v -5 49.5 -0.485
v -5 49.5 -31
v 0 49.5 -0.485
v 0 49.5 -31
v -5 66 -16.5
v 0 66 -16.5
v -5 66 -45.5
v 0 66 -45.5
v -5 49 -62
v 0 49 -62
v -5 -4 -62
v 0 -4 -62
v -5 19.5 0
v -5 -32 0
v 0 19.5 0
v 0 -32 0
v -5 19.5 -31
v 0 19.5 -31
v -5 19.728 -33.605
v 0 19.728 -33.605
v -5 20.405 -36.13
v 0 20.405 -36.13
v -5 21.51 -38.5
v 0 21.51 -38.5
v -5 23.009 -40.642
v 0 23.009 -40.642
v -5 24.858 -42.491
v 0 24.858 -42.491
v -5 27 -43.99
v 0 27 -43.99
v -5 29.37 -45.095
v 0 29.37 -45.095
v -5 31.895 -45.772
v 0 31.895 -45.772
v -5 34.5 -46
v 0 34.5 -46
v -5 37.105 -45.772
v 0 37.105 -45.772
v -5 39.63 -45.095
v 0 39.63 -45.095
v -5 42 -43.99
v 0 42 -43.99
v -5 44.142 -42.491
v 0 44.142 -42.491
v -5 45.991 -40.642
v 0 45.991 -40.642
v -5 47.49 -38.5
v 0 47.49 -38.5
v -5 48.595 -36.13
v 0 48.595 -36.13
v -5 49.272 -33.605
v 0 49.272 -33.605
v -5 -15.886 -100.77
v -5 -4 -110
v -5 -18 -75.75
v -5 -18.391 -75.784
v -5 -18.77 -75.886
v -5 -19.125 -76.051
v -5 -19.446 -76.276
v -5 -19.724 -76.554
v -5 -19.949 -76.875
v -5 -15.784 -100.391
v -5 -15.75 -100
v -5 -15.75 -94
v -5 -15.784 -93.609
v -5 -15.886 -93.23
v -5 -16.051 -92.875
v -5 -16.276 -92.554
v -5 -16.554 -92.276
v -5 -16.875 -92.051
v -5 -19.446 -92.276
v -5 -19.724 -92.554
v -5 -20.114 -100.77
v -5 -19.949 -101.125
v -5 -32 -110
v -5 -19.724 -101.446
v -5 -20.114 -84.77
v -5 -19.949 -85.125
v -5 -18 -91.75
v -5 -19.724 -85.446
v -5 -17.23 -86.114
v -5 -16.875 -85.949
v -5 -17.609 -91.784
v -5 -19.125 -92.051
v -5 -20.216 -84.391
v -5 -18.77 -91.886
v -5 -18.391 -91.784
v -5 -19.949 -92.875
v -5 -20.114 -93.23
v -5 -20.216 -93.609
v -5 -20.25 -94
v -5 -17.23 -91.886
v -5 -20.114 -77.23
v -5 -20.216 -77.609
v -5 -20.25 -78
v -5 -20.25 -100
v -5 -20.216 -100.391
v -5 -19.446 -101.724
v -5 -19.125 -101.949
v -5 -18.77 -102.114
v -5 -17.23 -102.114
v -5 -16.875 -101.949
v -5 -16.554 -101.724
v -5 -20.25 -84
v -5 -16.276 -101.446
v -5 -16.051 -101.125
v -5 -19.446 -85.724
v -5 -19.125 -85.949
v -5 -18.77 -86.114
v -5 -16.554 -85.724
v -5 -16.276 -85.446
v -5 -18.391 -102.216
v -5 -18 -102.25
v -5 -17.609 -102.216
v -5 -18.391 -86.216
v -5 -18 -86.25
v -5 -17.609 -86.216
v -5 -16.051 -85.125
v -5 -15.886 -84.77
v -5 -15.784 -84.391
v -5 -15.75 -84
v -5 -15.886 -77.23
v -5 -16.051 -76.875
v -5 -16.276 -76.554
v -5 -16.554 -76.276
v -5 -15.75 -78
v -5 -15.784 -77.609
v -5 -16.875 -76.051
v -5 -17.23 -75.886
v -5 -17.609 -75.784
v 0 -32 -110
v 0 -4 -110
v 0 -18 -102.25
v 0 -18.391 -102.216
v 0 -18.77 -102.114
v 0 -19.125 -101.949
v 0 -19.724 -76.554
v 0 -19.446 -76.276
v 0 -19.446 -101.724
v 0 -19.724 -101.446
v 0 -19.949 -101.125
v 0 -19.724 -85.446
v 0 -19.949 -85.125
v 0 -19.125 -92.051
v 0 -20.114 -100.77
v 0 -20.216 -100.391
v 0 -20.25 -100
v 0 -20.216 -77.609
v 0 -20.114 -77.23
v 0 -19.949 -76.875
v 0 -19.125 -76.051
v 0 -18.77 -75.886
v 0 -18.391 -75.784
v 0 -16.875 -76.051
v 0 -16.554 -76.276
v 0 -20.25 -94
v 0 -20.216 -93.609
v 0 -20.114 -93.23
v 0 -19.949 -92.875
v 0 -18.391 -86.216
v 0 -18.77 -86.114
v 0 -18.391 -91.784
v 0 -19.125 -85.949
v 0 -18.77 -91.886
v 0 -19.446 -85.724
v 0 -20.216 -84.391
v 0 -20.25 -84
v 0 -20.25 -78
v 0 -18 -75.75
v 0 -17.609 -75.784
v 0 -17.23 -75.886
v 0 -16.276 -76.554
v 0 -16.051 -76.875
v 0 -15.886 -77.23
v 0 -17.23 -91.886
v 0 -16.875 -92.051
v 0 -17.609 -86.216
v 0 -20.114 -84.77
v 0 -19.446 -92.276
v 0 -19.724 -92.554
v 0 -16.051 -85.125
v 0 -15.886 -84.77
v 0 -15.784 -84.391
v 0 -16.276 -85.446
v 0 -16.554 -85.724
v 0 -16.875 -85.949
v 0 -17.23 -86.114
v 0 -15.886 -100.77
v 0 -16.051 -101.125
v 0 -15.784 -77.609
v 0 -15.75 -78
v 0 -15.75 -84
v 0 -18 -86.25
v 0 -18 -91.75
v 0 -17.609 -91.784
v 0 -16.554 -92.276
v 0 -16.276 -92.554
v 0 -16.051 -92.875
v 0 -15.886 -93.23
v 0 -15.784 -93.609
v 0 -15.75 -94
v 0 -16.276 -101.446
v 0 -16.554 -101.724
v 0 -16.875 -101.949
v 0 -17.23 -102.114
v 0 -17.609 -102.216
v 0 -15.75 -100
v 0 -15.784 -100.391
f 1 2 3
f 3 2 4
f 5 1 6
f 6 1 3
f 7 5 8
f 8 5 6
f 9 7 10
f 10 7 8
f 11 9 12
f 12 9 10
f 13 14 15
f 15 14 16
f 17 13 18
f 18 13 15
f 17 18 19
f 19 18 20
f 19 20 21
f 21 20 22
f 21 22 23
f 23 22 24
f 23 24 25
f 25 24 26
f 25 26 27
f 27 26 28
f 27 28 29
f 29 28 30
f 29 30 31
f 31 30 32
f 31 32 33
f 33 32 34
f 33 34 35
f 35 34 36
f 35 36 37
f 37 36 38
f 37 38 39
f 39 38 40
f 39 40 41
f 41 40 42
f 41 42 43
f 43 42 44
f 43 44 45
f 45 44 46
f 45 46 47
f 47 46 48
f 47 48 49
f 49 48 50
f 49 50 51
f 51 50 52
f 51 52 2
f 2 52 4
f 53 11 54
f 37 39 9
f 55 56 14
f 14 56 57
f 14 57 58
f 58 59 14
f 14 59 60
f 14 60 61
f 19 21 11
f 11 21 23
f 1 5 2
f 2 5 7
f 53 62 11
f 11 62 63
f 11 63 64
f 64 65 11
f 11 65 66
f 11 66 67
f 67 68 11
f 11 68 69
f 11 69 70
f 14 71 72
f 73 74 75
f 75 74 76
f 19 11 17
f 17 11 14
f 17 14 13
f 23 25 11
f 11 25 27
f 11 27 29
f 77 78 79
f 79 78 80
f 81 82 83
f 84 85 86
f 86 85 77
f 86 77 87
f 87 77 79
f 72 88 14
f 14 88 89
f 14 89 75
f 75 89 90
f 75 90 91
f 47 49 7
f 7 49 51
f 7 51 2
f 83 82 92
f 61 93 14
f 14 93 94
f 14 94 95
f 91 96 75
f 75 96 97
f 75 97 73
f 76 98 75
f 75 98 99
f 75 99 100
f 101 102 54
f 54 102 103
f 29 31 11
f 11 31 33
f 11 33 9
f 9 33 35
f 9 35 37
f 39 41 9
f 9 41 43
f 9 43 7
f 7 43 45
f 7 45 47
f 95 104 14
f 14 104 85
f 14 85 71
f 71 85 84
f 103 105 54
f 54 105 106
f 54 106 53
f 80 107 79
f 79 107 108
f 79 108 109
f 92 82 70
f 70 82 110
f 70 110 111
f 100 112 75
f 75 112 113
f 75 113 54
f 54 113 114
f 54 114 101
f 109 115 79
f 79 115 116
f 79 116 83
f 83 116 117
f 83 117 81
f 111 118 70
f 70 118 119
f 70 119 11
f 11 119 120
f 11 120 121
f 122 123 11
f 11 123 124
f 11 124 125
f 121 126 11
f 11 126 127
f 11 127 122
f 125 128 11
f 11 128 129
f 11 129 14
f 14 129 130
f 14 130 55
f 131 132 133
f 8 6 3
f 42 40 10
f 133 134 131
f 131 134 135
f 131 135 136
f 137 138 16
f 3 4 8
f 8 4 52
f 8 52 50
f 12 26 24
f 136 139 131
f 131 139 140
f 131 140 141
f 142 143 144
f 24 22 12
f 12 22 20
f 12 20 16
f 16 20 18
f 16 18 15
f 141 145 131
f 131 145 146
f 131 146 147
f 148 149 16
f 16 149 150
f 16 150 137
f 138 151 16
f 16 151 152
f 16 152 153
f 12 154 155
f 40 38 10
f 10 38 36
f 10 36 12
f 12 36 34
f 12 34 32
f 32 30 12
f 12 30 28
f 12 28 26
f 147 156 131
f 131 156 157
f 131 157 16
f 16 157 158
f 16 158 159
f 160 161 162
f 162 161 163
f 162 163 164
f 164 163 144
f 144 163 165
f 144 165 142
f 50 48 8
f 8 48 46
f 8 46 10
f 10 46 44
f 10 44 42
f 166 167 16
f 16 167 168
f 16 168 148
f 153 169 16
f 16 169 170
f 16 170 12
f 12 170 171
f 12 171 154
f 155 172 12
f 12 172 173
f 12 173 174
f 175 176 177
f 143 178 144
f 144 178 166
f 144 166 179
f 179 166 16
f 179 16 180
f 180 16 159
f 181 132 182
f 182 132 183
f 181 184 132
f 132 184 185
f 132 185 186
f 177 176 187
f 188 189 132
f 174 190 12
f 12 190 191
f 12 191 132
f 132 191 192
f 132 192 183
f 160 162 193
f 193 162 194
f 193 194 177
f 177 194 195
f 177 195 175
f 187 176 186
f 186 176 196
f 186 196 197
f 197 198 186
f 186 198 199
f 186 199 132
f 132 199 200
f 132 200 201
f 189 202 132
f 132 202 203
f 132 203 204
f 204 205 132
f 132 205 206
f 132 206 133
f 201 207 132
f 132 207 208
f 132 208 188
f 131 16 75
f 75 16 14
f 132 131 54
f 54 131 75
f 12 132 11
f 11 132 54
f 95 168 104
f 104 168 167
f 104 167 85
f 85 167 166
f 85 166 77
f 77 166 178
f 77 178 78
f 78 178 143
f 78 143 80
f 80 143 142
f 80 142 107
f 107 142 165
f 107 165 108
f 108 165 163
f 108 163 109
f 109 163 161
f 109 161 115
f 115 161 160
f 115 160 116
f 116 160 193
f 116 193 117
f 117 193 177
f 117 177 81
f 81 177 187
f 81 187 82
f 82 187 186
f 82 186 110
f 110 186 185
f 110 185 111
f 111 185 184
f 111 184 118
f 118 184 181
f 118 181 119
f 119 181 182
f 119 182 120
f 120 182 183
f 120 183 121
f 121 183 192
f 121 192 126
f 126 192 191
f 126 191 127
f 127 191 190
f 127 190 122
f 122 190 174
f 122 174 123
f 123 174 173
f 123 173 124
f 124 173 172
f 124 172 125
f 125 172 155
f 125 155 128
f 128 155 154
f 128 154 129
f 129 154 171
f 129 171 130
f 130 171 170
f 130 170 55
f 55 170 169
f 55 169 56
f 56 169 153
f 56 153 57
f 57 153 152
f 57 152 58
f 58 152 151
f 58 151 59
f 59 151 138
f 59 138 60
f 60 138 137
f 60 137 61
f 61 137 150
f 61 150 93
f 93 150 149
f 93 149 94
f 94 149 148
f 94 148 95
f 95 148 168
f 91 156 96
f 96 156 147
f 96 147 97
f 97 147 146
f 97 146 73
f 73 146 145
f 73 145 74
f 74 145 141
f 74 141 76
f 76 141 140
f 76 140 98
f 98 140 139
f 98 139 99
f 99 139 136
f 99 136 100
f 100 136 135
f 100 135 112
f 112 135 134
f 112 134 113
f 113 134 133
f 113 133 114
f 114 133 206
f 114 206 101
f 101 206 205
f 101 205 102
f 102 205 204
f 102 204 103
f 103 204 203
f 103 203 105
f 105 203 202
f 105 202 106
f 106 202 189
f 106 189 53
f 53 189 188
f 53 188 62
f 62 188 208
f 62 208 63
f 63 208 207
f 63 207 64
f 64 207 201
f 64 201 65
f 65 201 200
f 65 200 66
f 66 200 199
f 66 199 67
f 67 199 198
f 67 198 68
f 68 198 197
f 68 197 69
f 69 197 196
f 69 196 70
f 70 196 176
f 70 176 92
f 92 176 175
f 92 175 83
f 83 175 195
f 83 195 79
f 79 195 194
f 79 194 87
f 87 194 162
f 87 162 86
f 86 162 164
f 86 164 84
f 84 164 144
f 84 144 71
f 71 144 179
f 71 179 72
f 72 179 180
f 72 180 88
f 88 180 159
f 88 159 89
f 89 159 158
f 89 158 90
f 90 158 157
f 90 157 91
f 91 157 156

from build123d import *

# Parameters (mm, degrees)
RESSALTO_EXTRUS_O2_DEPTH = 5
RESSALTO_EXTRUS_O3_DEPTH = 5


with BuildPart() as part:
    # Esboço2 → Ressalto-extrusão2 (new body)
    with BuildSketch(Plane(origin=(0, 0, 0), x_dir=(0, 0, -1), z_dir=(1, 0, 0))):
        with BuildLine():
            Line((0.485294118, 49.5), (16.5, 66))
            Line((16.5, 66), (45.5, 66))
            Line((45.5, 66), (62, 49))
            Line((62, 49), (62, 0))
            Line((62, 0), (0, 0))
            Line((0, 0), (0, 19.5))
            Line((0, 19.5), (31, 19.5))
            ThreePointArc((31, 19.5), (46, 34.5), (31, 49.5))
            Line((31, 49.5), (0.485294118, 49.5))
        make_face()
    extrude(amount=-RESSALTO_EXTRUS_O2_DEPTH)

    # Esboço3 → Ressalto-extrusão3 (add)
    with BuildSketch(Plane(origin=(0, 0, 0), x_dir=(0, 0, -1), z_dir=(1, 0, 0))):
        Polygon((0, 0), (62, 0), (62, -4), (110, -4), (110, -32), (0, -32), align=None)
        with BuildLine():
            Line((78, -15.75), (84, -15.75))
            ThreePointArc((84, -15.75), (86.25, -18), (84, -20.25))
            Line((84, -20.25), (78, -20.25))
            ThreePointArc((78, -20.25), (75.75, -18), (78, -15.75))
        make_face(mode=Mode.SUBTRACT)
        with BuildLine():
            Line((94, -15.75), (100, -15.75))
            ThreePointArc((100, -15.75), (102.25, -18), (100, -20.25))
            Line((100, -20.25), (94, -20.25))
            ThreePointArc((94, -20.25), (91.75, -18), (94, -15.75))
        make_face(mode=Mode.SUBTRACT)
    extrude(amount=-RESSALTO_EXTRUS_O3_DEPTH)


solid = part.part
